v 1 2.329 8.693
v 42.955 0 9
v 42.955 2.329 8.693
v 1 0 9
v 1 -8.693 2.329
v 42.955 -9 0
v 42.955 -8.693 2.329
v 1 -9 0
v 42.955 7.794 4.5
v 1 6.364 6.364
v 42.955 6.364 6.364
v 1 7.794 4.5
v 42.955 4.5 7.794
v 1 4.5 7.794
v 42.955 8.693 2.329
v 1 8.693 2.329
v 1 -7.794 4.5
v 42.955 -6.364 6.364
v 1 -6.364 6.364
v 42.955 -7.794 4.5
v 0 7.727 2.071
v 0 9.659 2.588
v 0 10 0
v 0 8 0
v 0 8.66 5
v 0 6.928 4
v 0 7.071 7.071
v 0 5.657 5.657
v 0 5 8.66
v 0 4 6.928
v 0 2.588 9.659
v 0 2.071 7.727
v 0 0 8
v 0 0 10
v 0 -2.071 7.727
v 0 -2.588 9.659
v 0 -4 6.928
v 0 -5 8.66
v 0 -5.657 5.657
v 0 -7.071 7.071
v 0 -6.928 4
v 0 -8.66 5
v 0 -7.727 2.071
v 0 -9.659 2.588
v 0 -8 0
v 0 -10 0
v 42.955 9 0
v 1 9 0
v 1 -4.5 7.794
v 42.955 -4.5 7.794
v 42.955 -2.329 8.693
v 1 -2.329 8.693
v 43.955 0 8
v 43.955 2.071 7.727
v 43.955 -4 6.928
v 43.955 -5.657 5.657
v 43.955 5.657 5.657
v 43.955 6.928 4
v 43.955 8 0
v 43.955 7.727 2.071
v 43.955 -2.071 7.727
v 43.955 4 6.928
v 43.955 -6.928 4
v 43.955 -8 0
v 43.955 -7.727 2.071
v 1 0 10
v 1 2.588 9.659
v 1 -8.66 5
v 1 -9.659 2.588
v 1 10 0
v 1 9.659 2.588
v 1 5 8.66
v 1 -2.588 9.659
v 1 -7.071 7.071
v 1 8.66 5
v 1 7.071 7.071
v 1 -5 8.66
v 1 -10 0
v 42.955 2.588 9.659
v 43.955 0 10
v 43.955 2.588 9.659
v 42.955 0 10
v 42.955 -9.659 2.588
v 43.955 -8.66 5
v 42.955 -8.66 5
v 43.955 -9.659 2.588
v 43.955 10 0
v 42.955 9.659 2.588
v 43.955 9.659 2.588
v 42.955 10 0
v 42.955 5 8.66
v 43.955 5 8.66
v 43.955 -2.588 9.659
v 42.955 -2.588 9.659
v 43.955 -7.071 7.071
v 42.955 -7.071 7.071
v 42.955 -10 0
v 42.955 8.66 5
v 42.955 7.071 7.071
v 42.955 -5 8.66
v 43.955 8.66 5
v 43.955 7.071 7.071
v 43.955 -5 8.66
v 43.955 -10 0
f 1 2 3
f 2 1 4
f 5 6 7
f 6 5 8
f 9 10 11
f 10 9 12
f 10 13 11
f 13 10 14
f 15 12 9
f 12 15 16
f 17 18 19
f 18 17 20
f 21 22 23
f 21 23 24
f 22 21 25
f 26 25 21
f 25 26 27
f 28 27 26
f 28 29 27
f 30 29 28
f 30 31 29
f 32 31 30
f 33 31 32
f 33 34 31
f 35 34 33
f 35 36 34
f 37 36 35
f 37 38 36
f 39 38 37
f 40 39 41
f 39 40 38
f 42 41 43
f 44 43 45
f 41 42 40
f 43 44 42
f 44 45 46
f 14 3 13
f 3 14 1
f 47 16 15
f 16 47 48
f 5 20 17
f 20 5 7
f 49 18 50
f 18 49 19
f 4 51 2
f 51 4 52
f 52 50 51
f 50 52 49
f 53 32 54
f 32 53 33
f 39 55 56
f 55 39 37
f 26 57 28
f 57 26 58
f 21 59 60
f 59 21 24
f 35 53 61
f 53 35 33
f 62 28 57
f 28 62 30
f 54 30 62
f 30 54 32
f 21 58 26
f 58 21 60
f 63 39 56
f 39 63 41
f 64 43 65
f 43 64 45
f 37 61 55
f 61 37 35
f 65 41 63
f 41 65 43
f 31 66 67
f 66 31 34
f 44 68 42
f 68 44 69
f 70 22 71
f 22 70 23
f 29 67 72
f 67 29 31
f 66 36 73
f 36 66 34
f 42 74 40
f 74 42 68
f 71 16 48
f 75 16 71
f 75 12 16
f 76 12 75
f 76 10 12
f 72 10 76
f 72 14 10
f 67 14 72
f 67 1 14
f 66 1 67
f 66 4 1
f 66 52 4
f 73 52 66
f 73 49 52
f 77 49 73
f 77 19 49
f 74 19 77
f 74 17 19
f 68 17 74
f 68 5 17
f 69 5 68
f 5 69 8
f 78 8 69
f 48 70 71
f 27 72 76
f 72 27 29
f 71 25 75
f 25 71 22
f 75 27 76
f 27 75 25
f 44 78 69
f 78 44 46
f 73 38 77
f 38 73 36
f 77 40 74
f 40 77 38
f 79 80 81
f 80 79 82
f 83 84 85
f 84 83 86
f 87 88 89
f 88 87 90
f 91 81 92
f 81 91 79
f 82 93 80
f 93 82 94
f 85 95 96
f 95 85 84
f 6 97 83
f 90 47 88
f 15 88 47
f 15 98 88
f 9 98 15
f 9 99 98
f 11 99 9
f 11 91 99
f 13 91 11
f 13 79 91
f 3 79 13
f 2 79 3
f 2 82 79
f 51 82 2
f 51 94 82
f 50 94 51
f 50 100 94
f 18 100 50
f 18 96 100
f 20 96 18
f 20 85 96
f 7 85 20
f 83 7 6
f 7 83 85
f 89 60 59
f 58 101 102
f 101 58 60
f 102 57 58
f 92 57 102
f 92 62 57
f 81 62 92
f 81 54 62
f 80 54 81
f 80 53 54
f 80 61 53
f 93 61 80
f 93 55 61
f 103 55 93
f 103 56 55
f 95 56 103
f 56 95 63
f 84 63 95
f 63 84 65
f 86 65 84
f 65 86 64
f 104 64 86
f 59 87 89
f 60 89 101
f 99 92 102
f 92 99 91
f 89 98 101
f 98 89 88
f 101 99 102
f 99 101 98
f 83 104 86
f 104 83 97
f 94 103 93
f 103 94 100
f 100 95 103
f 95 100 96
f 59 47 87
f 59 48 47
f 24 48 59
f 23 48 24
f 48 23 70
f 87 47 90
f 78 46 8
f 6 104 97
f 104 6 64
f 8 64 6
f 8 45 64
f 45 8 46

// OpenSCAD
// file: ../build_environments.scad
// build_environments.scad: modules to build level sections
//

module pool(diameter=10.0, wall_height=2.0, step_width=3.0, connections=[])
{
    difference() {
        union() {
        difference() {
            cylinder(h=0.5,r1=diameter+step_width,r2=diameter+step_width,$fn=48);
            translate([0,0,-0.1])
                cylinder(h=0.7,r1=diameter,r2=diameter,$fn=48);
        }
        difference() {
            cylinder(h=wall_height,r1=diameter+step_width+1.0,r2=diameter+step_width+1.0,$fn=48);
            translate([0,0,-0.1])
                cylinder(h=wall_height+0.2,r1=diameter+step_width,r2=diameter+step_width,$fn=48);
        }
        }
    
        for (c = connections)
        {
            rotate([0,90,0]) {
                angle = atan2(c[1],c[0]);
                rotate([-angle,0,0]) {
                    cylinder(h=diameter+5.0,r1=c[2],r2=c[2],$fn=48);
                }
            }
        }
    }
}

module straight(length=10.0, width=2.0, dy1=0.0, dy2=0.0, dz=0.0)
{
    dims = [0, 0, 0, 0, 0, (dz/length)];
    matrix = [
        [ 1, dims[0], dims[1], 0 ],
        [ dims[2], 1, dims[4], 0 ],
        [ dims[5], dims[3], 1, 0 ],
        [ 0, 0, 0, 1 ]
    ];
    multmatrix(matrix)
    difference() {
        translate([dy1,0,0])
        union() {
            rotate([0,90,0]) {
                difference() {
                    cylinder(h=(length-dy1-dy2),r1=width+1.0,r2=width+1.0,$fn=24);
                    translate([0,0,-0.1])
                        cylinder(h=(length-dy1-dy2+0.2),r1=width,r2=width,$fn=24);
                }
                difference() {
                    cylinder(h=1.0,r1=width+2.0,r2=width+2.0,$fn=24);
                    translate([0,0,-0.1])
                        cylinder(h=1.2,r1=width,r2=width,$fn=24);
                }
                translate([0,0,(length-dy1-dy2)-1.0]) {
                    difference() {
                        cylinder(h=1.0,r1=width+2.0,r2=width+2.0,$fn=24);
                        translate([0,0,-0.1])
                            cylinder(h=1.2,r1=width,r2=width,$fn=24);
                    }
                }
            }
        }
        translate([0,0,-(2*width+4.0)/2])
            cube([3*length,3*length,2*width+4.0],center=true);
    }
}

module curve(p0=[0,0], center=[0,0], dir=1, angle=0.0, width=2.0)
{
    radius = sqrt((p0[0]-center[0])*(p0[0]-center[0]) + (p0[1]-center[1])*(p0[1]-center[1]));
    if (dir == 0) {
        difference() {
            rotate([0,0,-90])
            difference() {
                rotate_extrude(angle = angle, convexity = 10, $fn=32)
                    translate([radius, 0, 0])
                        circle(r = width+1.0,$fn=24);
                rotate([0,0,-1.0])
                    rotate_extrude(angle = angle+2.0, convexity = 10, $fn=32)
                        translate([radius, 0, 0])
                            circle(r = width,$fn=24);
            }
            translate([0,0,-(2*width+4.0)/2])
                cube([5*radius,5*radius,2*width+4.0],center=true);
        }
    }
    else {
        difference() {
            rotate([0,0,90])
            difference() {
                rotate_extrude(angle = -angle, convexity = 10, $fn=32)
                    translate([radius, 0, 0])
                        circle(r = width+1.0,$fn=24);
                rotate([0,0,1.0])
                    rotate_extrude(angle = -angle-2.0, convexity = 10, $fn=32)
                        translate([radius, 0, 0])
                            circle(r = width,$fn=24);
            }
            translate([0,0,-(2*width+4.0)/2])
                cube([5*radius,5*radius,2*width+4.0],center=true);
        }
    }

}

// test pool
//pool(diameter=12.0000, wall_height=3.0000, step_width=3.0000, connections=[[0.0000,-26.0000,2.0000], [23.6074,0.0000,2.0000]]);

// test straight, slope
//straight(length=26.0000, width=2.0000, dy1=11.8322, dy2=6.7082, dz=0.0000);
//straight(length=29.1549, width=12.0000, dy1=0.0000, dy2=0.0000, dz=-15.0000);

// test curve
//curve(p0=[23.6074, 0.0000], center=[23.6074, 5.0000], dir=0, angle=60.1011, width=2.0000);
//curve(p0=[33.6426, 12.4219], center=[37.9771, 9.9295], dir=1, angle=120.4627, width=2.0000);
// main file
use <../build_environments.scad>;
straight(length=43.9546, width=8.0000, dy1=0.0000, dy2=0.0000, dz=0.0000);
